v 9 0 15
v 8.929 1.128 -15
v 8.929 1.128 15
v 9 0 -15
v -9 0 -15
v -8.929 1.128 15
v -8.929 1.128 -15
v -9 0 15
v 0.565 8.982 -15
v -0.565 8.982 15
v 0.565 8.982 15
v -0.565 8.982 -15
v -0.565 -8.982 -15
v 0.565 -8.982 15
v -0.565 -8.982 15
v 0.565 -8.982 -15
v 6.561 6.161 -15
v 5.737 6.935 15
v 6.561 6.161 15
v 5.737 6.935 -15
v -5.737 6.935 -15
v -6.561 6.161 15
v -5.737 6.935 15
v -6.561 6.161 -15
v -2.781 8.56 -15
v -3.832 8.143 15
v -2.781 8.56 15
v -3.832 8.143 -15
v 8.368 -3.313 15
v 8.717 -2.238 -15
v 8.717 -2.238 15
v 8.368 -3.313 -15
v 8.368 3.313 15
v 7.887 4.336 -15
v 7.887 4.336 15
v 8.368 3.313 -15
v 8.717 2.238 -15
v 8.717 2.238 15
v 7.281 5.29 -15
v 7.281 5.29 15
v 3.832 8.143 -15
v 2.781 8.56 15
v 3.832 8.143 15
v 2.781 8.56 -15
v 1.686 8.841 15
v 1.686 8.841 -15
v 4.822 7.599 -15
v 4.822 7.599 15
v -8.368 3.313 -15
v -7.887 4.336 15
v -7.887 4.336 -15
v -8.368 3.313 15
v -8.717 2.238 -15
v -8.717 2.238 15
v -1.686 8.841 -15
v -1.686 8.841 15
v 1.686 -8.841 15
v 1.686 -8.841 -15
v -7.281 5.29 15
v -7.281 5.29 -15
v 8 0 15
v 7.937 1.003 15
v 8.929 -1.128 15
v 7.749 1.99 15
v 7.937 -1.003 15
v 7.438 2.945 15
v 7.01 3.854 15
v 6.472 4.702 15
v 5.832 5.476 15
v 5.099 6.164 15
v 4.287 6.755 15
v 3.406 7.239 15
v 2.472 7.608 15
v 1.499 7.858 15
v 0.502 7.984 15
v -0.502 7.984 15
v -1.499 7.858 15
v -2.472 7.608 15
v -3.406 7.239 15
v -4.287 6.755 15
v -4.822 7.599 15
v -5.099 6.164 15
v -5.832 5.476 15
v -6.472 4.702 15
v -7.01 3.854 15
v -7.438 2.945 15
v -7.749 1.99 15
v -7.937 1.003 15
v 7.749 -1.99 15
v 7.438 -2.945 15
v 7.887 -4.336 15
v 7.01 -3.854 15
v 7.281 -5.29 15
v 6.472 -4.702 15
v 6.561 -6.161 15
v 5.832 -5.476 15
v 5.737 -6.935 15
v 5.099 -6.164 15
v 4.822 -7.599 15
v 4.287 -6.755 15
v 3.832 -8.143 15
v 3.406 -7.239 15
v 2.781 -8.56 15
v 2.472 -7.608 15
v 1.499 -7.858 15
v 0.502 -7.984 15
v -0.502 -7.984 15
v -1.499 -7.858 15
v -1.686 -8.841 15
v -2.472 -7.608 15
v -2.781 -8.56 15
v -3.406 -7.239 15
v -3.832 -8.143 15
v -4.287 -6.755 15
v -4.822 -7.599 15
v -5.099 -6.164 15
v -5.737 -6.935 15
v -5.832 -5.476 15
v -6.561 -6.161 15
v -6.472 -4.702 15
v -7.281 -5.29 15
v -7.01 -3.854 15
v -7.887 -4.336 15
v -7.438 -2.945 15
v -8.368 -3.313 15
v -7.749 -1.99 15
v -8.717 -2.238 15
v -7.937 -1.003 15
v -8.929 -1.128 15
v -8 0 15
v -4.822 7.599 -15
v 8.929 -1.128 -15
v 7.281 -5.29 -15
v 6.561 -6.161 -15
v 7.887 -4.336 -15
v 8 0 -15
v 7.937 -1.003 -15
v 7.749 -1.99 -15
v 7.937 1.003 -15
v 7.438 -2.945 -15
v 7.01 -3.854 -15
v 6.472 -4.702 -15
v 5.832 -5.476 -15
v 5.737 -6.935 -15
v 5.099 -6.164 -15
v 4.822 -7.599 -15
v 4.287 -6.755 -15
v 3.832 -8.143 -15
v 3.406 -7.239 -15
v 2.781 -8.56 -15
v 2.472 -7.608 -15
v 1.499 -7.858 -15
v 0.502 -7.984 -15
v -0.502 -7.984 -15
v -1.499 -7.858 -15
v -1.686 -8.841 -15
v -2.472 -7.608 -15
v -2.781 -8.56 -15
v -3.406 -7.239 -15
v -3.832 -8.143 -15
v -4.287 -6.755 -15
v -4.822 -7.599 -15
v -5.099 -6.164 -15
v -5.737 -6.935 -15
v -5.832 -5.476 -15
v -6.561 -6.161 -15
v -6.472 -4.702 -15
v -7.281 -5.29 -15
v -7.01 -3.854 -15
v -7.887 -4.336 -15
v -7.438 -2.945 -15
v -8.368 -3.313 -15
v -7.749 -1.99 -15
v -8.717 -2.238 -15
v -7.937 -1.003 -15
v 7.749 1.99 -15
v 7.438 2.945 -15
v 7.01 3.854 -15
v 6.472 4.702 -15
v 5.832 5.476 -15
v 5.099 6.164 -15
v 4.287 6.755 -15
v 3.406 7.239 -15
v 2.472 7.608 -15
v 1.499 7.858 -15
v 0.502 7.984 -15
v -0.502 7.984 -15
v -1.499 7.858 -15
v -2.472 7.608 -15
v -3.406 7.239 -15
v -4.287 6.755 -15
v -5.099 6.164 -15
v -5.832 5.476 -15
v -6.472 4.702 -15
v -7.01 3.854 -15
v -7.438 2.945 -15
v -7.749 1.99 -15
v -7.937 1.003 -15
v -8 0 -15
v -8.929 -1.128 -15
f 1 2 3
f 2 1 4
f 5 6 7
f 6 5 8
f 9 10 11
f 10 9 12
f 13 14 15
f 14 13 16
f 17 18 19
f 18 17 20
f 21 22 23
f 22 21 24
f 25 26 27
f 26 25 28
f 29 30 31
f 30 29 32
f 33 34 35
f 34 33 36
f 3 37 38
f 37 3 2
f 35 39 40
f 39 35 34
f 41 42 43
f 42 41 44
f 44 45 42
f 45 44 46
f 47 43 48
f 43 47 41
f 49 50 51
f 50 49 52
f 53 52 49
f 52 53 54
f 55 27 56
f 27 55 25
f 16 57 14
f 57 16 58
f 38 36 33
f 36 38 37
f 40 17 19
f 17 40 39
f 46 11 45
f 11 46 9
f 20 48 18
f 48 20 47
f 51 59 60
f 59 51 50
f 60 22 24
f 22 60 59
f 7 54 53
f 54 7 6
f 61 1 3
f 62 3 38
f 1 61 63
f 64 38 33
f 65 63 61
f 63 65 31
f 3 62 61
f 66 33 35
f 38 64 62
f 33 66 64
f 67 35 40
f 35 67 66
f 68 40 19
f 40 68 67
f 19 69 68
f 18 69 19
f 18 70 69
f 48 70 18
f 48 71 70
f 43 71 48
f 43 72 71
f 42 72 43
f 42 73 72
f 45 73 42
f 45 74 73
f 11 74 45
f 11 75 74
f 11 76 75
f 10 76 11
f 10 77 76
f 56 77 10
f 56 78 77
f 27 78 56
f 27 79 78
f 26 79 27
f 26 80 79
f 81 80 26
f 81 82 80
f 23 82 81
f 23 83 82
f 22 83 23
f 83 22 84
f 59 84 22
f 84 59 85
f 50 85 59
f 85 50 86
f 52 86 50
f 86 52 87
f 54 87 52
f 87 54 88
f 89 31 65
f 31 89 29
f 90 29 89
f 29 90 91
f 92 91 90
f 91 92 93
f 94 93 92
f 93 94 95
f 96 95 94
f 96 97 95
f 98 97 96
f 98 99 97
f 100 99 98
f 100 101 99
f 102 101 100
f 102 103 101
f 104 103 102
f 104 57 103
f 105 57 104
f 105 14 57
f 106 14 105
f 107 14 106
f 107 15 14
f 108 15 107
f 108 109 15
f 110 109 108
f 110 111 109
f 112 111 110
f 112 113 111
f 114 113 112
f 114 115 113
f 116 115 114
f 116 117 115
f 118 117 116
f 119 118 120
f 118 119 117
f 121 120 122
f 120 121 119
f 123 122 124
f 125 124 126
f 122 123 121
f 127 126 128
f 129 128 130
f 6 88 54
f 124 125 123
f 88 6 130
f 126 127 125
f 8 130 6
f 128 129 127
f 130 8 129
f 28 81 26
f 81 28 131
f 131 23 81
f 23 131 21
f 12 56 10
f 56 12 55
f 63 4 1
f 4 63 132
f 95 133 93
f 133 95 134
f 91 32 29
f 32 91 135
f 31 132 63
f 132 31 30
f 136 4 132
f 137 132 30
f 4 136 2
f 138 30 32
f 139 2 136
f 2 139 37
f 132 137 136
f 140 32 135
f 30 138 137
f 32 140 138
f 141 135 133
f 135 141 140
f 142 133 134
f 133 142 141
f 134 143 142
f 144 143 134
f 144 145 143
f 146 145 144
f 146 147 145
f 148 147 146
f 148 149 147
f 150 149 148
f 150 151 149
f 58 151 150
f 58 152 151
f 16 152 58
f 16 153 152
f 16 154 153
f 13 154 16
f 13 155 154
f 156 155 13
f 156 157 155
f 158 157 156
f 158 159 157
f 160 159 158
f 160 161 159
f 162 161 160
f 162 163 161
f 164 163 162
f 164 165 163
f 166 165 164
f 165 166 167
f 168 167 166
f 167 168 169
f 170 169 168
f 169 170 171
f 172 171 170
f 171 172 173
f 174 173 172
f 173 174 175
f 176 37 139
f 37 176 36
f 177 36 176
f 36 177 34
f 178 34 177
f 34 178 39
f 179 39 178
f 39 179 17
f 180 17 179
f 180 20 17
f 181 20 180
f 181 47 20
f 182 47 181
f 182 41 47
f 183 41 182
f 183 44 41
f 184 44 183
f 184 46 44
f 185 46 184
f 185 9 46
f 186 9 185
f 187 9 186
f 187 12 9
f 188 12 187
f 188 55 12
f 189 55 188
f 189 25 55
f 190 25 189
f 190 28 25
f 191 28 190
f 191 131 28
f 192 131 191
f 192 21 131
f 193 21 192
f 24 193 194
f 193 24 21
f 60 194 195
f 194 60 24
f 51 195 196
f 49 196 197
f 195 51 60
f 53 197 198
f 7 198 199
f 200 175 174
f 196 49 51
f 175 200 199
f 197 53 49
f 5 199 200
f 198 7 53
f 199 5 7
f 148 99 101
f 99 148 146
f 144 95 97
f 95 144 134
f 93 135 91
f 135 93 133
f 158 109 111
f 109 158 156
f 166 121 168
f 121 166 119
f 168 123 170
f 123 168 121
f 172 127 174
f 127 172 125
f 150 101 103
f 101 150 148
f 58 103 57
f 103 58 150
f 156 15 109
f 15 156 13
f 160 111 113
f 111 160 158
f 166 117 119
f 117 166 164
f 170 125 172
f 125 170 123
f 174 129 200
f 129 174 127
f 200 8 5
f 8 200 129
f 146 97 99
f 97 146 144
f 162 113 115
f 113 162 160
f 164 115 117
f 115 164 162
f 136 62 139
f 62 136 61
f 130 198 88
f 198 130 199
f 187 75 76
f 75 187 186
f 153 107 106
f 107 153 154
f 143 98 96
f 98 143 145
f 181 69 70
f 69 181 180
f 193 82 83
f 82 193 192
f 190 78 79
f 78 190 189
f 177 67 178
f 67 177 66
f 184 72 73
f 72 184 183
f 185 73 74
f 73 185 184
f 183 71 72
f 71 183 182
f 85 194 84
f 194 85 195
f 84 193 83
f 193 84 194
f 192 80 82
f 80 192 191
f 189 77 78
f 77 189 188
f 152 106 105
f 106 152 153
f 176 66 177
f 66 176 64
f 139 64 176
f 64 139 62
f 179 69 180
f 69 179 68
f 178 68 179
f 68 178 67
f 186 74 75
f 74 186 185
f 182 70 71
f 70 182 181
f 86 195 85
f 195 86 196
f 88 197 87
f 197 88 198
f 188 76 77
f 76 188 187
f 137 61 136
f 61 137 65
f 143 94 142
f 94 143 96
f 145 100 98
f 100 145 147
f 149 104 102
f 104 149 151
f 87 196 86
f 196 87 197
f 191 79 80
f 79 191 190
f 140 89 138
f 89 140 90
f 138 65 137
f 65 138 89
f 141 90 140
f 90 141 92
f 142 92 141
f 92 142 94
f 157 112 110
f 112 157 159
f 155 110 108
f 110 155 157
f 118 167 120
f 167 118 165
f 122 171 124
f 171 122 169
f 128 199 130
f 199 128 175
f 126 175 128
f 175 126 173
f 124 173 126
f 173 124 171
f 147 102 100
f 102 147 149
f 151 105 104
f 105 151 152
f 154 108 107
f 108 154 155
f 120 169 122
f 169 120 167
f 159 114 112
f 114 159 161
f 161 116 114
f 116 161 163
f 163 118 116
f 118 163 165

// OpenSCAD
$fn = 50;


difference() {
	union() {
		translate(v = [0, 0, -15.0000000000]) {
			cylinder(h = 30, r = 9.0000000000);
		}
	}
	union() {
		translate(v = [0, 0, -100.0000000000]) {
			cylinder(h = 200, r = 8);
		}
	}
}
